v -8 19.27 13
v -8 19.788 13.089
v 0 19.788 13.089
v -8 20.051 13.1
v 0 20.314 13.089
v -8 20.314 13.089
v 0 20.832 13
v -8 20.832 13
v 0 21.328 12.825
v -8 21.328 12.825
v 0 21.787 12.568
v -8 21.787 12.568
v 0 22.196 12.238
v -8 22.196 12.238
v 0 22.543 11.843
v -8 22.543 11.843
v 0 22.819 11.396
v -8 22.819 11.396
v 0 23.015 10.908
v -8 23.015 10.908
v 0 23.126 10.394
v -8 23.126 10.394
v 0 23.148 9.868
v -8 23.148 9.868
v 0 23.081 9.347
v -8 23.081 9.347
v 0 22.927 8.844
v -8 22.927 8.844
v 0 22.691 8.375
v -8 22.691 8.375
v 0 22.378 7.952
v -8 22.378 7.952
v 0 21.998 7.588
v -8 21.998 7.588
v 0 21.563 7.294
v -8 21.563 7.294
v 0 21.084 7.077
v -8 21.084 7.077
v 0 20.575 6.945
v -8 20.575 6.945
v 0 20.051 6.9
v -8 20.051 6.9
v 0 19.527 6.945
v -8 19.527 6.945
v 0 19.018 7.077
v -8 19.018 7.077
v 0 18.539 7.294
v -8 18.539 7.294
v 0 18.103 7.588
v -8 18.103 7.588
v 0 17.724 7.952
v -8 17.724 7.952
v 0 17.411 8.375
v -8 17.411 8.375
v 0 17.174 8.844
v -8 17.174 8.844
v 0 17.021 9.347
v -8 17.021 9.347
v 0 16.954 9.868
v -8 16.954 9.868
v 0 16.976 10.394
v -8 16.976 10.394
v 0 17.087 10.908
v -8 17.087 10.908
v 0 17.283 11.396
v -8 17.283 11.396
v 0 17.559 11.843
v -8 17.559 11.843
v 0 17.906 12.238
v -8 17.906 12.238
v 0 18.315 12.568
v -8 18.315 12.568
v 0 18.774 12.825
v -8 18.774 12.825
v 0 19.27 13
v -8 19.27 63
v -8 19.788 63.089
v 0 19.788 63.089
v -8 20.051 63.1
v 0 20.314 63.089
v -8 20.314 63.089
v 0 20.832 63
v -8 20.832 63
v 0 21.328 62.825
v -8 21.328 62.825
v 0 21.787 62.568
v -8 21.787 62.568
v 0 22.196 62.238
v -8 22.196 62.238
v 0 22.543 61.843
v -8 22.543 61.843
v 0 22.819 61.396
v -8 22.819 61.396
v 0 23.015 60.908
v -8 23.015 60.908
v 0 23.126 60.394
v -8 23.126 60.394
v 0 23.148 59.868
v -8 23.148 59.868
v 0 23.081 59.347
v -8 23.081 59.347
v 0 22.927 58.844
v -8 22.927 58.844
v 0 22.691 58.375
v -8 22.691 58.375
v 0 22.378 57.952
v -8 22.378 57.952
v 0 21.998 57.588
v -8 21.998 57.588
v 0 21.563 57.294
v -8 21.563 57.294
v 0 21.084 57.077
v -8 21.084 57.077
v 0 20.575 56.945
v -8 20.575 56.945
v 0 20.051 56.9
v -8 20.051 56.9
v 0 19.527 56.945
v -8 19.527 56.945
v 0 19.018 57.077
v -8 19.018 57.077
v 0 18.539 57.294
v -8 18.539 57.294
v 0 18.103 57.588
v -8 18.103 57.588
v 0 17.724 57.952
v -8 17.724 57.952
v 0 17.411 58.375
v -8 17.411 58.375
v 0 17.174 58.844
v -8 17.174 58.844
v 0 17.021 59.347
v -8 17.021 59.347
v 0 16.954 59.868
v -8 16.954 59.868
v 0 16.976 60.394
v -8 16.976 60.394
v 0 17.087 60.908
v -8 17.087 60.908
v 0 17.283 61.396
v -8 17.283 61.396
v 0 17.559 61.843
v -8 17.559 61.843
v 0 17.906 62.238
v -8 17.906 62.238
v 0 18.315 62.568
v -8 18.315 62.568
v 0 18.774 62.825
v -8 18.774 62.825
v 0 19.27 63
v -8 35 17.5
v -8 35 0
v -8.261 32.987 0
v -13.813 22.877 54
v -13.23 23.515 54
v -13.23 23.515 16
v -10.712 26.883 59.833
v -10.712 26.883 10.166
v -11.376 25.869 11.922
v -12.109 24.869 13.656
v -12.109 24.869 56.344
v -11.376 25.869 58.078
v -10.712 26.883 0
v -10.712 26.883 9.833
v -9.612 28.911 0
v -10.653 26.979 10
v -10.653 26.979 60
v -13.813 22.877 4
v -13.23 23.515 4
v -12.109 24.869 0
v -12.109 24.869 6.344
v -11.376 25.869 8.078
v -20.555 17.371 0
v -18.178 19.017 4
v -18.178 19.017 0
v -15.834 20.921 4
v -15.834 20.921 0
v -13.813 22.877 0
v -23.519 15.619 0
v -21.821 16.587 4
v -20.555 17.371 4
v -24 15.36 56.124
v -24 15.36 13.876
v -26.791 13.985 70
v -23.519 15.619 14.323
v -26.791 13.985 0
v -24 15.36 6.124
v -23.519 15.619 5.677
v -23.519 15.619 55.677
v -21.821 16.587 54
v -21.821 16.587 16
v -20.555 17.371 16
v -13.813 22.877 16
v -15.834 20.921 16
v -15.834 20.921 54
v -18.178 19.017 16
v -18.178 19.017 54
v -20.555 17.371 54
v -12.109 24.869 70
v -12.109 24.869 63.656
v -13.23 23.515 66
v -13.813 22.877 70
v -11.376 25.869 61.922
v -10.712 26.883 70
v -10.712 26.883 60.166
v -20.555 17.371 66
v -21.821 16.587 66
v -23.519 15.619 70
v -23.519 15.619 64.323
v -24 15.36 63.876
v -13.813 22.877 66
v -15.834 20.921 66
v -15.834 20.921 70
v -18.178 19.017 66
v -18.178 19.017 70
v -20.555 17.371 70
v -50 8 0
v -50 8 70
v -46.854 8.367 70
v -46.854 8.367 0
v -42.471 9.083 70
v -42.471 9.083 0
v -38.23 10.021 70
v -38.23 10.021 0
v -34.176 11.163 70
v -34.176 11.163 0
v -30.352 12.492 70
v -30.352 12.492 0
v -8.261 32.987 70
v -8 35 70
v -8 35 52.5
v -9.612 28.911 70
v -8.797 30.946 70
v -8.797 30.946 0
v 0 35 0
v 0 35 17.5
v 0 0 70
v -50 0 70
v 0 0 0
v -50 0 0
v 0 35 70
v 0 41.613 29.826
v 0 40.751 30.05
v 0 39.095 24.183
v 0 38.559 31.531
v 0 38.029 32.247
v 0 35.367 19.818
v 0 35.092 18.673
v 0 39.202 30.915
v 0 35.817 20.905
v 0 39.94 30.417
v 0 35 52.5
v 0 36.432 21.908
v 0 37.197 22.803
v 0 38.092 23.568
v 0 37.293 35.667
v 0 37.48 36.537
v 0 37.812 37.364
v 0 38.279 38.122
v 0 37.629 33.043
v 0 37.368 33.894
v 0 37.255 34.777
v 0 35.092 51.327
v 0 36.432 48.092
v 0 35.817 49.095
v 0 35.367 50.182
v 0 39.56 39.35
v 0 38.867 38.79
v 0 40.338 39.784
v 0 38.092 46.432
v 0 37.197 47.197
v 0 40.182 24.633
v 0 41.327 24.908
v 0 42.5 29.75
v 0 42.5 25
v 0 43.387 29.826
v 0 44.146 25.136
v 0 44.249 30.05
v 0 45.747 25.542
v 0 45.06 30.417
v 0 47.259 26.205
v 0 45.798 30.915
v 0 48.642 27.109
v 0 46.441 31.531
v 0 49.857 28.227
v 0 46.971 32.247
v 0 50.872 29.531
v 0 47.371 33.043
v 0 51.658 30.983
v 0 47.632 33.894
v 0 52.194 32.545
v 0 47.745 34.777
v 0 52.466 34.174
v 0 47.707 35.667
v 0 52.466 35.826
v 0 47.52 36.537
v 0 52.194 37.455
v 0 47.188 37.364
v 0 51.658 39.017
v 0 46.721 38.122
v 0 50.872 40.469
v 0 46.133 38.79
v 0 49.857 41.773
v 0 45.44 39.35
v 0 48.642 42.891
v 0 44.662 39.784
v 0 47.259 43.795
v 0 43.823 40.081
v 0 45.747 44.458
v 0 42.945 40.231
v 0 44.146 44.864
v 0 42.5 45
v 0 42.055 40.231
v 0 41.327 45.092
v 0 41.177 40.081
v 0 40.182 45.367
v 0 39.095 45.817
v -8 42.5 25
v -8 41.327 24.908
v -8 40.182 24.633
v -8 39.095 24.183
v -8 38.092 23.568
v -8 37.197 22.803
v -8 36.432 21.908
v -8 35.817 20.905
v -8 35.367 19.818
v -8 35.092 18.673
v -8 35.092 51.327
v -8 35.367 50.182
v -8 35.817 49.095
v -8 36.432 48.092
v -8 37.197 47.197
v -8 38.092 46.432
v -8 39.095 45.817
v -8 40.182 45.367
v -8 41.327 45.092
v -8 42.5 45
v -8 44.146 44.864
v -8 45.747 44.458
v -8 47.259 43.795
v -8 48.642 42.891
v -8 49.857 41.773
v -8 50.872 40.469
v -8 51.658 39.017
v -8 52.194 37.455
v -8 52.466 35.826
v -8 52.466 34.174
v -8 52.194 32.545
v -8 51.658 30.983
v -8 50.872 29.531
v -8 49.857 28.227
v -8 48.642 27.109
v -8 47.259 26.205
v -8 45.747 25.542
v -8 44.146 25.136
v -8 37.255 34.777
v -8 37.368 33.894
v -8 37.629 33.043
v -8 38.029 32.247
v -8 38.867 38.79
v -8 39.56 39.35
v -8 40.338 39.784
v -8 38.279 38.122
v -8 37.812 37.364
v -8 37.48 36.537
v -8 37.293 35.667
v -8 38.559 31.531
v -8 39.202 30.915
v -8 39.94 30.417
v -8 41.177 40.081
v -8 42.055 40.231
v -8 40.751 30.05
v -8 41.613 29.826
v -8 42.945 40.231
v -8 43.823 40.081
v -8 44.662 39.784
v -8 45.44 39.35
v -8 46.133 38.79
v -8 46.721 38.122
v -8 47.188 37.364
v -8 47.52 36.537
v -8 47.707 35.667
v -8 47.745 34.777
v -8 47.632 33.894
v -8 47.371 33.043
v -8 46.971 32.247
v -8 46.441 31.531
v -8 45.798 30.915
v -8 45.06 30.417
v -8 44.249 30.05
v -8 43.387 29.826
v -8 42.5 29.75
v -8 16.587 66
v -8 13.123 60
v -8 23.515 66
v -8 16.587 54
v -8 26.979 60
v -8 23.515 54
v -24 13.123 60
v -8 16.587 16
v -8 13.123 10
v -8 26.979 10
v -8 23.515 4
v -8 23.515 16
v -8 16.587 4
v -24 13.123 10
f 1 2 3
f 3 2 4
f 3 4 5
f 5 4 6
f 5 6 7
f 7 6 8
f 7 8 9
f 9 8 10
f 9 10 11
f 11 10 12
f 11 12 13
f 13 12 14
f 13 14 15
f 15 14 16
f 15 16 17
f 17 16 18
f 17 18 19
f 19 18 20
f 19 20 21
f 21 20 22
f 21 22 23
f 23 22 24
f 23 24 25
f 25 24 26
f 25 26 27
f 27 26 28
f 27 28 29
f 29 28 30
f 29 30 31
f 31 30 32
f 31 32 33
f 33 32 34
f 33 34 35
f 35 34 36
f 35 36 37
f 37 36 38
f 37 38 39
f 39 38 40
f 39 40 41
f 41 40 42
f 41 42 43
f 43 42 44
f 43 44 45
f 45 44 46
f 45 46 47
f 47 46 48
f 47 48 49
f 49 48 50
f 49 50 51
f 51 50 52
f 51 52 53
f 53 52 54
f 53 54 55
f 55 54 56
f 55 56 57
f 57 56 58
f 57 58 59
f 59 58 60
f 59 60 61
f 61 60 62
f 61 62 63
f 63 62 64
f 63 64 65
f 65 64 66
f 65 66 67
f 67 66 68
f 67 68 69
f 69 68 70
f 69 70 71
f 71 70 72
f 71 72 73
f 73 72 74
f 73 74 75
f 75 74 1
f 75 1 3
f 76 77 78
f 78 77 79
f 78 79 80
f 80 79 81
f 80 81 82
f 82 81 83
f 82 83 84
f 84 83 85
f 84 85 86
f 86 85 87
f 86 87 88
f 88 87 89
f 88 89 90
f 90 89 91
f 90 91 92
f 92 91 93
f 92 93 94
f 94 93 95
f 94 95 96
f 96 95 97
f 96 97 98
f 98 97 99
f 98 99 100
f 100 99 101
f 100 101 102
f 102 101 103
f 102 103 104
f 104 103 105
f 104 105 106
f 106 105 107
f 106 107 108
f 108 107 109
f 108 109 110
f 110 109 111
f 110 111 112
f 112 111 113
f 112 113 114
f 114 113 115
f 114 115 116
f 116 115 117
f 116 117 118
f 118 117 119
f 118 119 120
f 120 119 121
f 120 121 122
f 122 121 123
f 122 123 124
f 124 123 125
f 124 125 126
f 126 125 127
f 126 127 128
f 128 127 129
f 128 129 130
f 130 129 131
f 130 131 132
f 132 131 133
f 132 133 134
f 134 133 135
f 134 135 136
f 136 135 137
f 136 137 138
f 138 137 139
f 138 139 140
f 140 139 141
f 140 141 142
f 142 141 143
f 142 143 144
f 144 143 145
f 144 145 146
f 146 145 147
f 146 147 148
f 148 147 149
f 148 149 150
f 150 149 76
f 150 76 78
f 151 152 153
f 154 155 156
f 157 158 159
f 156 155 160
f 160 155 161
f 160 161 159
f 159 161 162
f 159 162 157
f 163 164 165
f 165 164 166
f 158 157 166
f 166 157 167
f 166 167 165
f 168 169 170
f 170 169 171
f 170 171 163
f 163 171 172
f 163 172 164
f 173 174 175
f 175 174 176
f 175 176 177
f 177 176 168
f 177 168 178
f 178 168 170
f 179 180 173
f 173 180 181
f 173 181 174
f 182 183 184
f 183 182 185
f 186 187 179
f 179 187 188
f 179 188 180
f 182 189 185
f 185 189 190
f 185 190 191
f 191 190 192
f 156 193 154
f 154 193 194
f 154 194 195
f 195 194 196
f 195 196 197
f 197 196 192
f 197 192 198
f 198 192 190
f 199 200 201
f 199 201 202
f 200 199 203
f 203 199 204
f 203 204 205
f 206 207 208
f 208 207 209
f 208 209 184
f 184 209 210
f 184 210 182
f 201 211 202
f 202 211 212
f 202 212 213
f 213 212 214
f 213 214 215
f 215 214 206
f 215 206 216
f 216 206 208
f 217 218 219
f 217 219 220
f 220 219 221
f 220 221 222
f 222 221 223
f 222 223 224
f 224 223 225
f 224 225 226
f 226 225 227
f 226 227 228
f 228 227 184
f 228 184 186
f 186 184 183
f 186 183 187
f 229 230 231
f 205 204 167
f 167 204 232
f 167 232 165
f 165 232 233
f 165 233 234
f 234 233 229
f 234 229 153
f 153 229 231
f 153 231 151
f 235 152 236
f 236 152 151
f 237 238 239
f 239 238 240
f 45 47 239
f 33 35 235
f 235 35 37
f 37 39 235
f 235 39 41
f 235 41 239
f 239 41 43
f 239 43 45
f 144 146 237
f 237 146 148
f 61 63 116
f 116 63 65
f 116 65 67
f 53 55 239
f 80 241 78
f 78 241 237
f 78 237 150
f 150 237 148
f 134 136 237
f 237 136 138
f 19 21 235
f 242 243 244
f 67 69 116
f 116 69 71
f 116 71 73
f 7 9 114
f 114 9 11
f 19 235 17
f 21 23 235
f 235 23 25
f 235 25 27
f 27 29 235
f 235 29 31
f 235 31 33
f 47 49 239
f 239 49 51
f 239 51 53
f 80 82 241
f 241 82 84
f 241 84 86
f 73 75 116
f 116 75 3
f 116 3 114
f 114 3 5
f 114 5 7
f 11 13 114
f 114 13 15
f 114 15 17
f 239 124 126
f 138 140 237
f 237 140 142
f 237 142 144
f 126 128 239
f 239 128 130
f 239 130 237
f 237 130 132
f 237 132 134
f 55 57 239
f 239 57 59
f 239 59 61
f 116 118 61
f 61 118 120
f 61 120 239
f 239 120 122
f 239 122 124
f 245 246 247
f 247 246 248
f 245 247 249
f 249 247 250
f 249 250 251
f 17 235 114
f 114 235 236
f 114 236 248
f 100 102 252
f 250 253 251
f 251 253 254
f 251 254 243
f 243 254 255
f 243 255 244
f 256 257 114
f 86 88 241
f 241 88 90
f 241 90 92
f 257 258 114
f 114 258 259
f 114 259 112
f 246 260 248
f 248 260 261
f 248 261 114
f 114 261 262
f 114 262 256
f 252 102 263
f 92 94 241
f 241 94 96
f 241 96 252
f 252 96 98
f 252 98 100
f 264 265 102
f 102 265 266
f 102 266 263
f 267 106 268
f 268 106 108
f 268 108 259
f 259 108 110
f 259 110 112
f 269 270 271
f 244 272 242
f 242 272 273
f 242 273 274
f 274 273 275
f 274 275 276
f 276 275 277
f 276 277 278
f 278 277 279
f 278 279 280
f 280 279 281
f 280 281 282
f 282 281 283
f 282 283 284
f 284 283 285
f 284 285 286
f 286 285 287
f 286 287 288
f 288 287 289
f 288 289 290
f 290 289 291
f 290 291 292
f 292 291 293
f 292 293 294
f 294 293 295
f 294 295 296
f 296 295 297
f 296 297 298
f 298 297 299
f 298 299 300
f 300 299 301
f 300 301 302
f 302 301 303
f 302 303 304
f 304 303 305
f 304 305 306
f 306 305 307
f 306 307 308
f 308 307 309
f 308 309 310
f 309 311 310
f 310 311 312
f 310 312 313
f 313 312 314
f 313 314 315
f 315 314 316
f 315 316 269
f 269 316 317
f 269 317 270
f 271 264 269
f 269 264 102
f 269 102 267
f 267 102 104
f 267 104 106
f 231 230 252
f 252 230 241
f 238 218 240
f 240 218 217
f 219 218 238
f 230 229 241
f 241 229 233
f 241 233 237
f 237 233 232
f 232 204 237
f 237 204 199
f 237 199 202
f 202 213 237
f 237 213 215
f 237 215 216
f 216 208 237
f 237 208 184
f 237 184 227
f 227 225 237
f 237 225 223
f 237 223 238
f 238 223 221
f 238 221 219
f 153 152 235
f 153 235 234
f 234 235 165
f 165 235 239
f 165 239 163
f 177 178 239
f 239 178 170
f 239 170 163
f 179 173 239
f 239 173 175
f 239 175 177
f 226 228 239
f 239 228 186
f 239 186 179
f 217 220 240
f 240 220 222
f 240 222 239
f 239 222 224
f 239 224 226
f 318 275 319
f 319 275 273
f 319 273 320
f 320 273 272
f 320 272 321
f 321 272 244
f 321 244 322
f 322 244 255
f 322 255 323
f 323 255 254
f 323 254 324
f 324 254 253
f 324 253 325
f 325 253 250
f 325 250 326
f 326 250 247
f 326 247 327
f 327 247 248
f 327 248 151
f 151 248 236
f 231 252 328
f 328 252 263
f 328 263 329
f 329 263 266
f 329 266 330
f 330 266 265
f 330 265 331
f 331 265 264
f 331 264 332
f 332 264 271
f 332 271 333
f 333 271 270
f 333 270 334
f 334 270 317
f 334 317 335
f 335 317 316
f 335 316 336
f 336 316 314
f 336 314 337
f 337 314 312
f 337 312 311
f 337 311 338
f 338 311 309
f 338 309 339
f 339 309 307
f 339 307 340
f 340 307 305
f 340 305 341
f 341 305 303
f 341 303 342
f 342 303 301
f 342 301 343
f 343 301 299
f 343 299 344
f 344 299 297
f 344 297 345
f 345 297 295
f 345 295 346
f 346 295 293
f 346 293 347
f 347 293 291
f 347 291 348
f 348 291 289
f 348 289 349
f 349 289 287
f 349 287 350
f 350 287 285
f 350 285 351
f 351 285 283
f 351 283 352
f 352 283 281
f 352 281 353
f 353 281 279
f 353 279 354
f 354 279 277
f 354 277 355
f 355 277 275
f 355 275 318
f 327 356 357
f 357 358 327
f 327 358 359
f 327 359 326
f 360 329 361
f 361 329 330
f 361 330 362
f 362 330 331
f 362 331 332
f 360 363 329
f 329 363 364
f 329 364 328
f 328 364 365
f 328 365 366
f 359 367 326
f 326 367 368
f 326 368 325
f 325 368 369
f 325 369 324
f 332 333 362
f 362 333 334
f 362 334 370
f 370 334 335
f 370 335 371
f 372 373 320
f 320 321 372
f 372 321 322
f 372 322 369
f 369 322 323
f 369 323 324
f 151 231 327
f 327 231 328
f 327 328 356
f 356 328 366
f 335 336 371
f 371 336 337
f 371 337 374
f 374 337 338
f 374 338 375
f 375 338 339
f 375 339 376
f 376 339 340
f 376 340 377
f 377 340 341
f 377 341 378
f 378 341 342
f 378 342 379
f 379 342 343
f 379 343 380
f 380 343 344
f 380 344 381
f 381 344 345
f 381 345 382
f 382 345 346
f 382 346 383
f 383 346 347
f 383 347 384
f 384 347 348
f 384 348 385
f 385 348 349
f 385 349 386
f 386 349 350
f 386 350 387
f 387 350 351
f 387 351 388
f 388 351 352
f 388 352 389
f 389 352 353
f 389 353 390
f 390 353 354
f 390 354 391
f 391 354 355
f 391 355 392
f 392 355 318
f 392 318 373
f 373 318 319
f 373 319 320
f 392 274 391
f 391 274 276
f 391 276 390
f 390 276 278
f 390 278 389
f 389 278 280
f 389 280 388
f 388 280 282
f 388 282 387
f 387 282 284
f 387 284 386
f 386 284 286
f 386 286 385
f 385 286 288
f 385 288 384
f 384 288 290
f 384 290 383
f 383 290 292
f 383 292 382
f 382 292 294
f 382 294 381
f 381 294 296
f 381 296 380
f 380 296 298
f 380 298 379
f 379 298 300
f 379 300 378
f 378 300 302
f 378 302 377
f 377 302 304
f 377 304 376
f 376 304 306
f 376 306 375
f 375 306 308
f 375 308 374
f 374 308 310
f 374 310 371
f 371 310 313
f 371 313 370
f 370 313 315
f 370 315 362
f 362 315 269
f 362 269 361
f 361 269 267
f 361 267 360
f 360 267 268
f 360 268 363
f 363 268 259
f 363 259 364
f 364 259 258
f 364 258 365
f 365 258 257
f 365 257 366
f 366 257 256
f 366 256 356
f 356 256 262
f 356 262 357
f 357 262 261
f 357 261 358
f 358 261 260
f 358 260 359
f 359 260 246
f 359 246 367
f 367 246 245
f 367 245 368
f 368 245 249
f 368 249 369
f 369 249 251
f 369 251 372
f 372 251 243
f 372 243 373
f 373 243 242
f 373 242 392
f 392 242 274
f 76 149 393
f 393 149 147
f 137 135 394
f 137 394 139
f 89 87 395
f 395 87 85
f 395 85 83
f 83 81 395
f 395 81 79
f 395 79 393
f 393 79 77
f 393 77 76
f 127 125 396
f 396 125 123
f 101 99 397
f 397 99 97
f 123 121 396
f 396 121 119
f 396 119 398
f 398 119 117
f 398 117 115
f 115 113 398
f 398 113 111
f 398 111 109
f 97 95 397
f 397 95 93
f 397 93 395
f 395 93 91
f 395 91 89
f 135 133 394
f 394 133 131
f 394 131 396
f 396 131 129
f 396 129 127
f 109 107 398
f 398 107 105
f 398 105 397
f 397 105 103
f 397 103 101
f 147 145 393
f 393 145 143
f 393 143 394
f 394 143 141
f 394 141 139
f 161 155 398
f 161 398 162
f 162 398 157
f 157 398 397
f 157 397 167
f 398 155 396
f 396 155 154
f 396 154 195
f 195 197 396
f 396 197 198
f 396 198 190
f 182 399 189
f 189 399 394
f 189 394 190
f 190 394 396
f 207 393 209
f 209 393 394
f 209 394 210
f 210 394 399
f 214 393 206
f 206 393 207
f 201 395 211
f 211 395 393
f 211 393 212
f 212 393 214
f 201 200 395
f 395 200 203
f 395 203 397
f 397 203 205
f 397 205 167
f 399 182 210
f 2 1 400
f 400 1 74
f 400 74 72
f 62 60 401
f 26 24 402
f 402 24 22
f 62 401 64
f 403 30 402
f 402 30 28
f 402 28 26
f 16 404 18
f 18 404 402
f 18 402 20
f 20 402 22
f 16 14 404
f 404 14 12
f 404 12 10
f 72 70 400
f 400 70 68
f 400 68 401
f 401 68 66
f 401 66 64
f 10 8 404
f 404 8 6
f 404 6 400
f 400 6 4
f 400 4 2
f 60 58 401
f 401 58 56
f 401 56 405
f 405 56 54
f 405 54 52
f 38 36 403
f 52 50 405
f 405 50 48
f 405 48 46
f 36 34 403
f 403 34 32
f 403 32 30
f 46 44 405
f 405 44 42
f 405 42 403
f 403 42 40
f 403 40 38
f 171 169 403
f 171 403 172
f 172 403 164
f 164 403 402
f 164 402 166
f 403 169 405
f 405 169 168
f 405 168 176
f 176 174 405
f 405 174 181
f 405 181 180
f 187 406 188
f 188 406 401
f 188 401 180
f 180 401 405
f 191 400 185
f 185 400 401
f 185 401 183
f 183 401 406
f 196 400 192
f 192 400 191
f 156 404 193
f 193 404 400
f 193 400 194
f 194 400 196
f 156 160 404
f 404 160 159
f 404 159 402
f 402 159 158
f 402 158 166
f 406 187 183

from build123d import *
from build123d.topology import SkipClean

# Parameters (mm, degrees)
RESSALTO_EXTRUS_O1_DEPTH = 70
CORTE_EXTRUS_O1_REACH    = 94.871
ESBO_O2_R                = 3.1
FILETE1_DEPTH            = 70
FILETE1_START            = -22
FILETE1_2_OUTLINE_R      = 3.1
FILETE1_2_DEPTH          = 14
ESBO_O3_R                = 5.25
RESSALTO_EXTRUS_O2_DEPTH = 8
CORTE_EXTRUS_O6_DEPTH    = 16


with BuildPart() as part:
    # Esboço1 → Ressalto-extrusão1 (new body)
    with BuildSketch(Plane.XY):
        Polygon((0, 0), (0, 35), (-8, 35), (-8, 8), (-50, 8), (-50, 0), align=None)
    extrude(amount=RESSALTO_EXTRUS_O1_DEPTH)

    # Esboço2 → Corte-extrusão1 (cut, up to next)
    with BuildSketch(Plane(origin=(0, 0, 0), x_dir=(0, 0, -1), z_dir=(1, 0, 0)), mode=Mode.PRIVATE) as corte_extrus_o1_sk1:
        with Locations((-60, 20.050946568)):
            Circle(ESBO_O2_R)
    corte_extrus_o1_tool1 = extrude(corte_extrus_o1_sk1.sketch, amount=-CORTE_EXTRUS_O1_REACH, mode=Mode.PRIVATE) & part.part
    # Esboço2 → Corte-extrusão1 (cut, up to next)
    with BuildSketch(Plane(origin=(0, 0, 0), x_dir=(0, 0, -1), z_dir=(1, 0, 0)), mode=Mode.PRIVATE) as corte_extrus_o1_sk2:
        with Locations((-10, 20.050946568)):
            Circle(ESBO_O2_R)
    corte_extrus_o1_tool2 = extrude(corte_extrus_o1_sk2.sketch, amount=-CORTE_EXTRUS_O1_REACH, mode=Mode.PRIVATE) & part.part
    add(corte_extrus_o1_tool1.solids().sort_by_distance((0, 20.050947, 60))[0], mode=Mode.SUBTRACT)
    add(corte_extrus_o1_tool2.solids().sort_by_distance((0, 20.050947, 10))[0], mode=Mode.SUBTRACT)

    # Filete1: read off the stored shape, not the designer's step
    # Filete1 outline → Filete1 (add)
    with BuildSketch(Plane.XY):
        with BuildLine():
            Line((-8, 8), (-8, 35))
            add(Edge.make_bspline(
                [(-8, 35), (-9.46726927, 11.949085531), (-50, 8)],
                knots=[0, 0, 0, 1, 1, 1], degree=2, weights=[1, 0.761577311, 1]))
            Line((-50, 8), (-8, 8))
        make_face()
    extrude(amount=FILETE1_DEPTH)

    # Filete1 2 outline → Filete1 2 (cut)
    with SkipClean():  # the faces are left unmerged after this step: merging them gives an invalid solid
        with BuildSketch(Plane.YZ.offset(FILETE1_START)):
            with Locations((20.050946568, 10)):
                Circle(FILETE1_2_OUTLINE_R)
            with Locations((20.050946568, 60)):
                Circle(FILETE1_2_OUTLINE_R)
        extrude(amount=FILETE1_2_DEPTH, mode=Mode.SUBTRACT)

    # Esboço3 → Ressalto-extrusão2 (add)
    with SkipClean():  # the faces are left unmerged after this step: merging them gives an invalid solid
        with BuildSketch(Plane(origin=(0, 0, 0), x_dir=(0, 0, -1), z_dir=(1, 0, 0))):
            with BuildLine():
                Line((-52.5, 35), (-17.5, 35))
                ThreePointArc((-17.5, 35), (-22.803300859, 37.196699141), (-25, 42.5))
                ThreePointArc((-25, 42.5), (-35, 52.5), (-45, 42.5))
                ThreePointArc((-45, 42.5), (-47.196699141, 37.196699141), (-52.5, 35))
            make_face()
            with Locations((-35, 42.5)):
                Circle(ESBO_O3_R, mode=Mode.SUBTRACT)
        extrude(amount=-RESSALTO_EXTRUS_O2_DEPTH)

    # Esboço6 → Corte-extrusão6 (cut)
    with BuildSketch(Plane.ZY.offset(8)):
        Polygon((4, 23.515048183), (4, 16.586844953), (10, 13.122743338), (16, 16.586844953), (16, 23.515048183), (10, 26.979149798), align=None)
        Polygon((54, 23.515048183), (54, 16.586844953), (60, 13.122743338), (66, 16.586844953), (66, 23.515048183), (60, 26.979149798), align=None)
    extrude(amount=CORTE_EXTRUS_O6_DEPTH, mode=Mode.SUBTRACT)


solid = part.part
